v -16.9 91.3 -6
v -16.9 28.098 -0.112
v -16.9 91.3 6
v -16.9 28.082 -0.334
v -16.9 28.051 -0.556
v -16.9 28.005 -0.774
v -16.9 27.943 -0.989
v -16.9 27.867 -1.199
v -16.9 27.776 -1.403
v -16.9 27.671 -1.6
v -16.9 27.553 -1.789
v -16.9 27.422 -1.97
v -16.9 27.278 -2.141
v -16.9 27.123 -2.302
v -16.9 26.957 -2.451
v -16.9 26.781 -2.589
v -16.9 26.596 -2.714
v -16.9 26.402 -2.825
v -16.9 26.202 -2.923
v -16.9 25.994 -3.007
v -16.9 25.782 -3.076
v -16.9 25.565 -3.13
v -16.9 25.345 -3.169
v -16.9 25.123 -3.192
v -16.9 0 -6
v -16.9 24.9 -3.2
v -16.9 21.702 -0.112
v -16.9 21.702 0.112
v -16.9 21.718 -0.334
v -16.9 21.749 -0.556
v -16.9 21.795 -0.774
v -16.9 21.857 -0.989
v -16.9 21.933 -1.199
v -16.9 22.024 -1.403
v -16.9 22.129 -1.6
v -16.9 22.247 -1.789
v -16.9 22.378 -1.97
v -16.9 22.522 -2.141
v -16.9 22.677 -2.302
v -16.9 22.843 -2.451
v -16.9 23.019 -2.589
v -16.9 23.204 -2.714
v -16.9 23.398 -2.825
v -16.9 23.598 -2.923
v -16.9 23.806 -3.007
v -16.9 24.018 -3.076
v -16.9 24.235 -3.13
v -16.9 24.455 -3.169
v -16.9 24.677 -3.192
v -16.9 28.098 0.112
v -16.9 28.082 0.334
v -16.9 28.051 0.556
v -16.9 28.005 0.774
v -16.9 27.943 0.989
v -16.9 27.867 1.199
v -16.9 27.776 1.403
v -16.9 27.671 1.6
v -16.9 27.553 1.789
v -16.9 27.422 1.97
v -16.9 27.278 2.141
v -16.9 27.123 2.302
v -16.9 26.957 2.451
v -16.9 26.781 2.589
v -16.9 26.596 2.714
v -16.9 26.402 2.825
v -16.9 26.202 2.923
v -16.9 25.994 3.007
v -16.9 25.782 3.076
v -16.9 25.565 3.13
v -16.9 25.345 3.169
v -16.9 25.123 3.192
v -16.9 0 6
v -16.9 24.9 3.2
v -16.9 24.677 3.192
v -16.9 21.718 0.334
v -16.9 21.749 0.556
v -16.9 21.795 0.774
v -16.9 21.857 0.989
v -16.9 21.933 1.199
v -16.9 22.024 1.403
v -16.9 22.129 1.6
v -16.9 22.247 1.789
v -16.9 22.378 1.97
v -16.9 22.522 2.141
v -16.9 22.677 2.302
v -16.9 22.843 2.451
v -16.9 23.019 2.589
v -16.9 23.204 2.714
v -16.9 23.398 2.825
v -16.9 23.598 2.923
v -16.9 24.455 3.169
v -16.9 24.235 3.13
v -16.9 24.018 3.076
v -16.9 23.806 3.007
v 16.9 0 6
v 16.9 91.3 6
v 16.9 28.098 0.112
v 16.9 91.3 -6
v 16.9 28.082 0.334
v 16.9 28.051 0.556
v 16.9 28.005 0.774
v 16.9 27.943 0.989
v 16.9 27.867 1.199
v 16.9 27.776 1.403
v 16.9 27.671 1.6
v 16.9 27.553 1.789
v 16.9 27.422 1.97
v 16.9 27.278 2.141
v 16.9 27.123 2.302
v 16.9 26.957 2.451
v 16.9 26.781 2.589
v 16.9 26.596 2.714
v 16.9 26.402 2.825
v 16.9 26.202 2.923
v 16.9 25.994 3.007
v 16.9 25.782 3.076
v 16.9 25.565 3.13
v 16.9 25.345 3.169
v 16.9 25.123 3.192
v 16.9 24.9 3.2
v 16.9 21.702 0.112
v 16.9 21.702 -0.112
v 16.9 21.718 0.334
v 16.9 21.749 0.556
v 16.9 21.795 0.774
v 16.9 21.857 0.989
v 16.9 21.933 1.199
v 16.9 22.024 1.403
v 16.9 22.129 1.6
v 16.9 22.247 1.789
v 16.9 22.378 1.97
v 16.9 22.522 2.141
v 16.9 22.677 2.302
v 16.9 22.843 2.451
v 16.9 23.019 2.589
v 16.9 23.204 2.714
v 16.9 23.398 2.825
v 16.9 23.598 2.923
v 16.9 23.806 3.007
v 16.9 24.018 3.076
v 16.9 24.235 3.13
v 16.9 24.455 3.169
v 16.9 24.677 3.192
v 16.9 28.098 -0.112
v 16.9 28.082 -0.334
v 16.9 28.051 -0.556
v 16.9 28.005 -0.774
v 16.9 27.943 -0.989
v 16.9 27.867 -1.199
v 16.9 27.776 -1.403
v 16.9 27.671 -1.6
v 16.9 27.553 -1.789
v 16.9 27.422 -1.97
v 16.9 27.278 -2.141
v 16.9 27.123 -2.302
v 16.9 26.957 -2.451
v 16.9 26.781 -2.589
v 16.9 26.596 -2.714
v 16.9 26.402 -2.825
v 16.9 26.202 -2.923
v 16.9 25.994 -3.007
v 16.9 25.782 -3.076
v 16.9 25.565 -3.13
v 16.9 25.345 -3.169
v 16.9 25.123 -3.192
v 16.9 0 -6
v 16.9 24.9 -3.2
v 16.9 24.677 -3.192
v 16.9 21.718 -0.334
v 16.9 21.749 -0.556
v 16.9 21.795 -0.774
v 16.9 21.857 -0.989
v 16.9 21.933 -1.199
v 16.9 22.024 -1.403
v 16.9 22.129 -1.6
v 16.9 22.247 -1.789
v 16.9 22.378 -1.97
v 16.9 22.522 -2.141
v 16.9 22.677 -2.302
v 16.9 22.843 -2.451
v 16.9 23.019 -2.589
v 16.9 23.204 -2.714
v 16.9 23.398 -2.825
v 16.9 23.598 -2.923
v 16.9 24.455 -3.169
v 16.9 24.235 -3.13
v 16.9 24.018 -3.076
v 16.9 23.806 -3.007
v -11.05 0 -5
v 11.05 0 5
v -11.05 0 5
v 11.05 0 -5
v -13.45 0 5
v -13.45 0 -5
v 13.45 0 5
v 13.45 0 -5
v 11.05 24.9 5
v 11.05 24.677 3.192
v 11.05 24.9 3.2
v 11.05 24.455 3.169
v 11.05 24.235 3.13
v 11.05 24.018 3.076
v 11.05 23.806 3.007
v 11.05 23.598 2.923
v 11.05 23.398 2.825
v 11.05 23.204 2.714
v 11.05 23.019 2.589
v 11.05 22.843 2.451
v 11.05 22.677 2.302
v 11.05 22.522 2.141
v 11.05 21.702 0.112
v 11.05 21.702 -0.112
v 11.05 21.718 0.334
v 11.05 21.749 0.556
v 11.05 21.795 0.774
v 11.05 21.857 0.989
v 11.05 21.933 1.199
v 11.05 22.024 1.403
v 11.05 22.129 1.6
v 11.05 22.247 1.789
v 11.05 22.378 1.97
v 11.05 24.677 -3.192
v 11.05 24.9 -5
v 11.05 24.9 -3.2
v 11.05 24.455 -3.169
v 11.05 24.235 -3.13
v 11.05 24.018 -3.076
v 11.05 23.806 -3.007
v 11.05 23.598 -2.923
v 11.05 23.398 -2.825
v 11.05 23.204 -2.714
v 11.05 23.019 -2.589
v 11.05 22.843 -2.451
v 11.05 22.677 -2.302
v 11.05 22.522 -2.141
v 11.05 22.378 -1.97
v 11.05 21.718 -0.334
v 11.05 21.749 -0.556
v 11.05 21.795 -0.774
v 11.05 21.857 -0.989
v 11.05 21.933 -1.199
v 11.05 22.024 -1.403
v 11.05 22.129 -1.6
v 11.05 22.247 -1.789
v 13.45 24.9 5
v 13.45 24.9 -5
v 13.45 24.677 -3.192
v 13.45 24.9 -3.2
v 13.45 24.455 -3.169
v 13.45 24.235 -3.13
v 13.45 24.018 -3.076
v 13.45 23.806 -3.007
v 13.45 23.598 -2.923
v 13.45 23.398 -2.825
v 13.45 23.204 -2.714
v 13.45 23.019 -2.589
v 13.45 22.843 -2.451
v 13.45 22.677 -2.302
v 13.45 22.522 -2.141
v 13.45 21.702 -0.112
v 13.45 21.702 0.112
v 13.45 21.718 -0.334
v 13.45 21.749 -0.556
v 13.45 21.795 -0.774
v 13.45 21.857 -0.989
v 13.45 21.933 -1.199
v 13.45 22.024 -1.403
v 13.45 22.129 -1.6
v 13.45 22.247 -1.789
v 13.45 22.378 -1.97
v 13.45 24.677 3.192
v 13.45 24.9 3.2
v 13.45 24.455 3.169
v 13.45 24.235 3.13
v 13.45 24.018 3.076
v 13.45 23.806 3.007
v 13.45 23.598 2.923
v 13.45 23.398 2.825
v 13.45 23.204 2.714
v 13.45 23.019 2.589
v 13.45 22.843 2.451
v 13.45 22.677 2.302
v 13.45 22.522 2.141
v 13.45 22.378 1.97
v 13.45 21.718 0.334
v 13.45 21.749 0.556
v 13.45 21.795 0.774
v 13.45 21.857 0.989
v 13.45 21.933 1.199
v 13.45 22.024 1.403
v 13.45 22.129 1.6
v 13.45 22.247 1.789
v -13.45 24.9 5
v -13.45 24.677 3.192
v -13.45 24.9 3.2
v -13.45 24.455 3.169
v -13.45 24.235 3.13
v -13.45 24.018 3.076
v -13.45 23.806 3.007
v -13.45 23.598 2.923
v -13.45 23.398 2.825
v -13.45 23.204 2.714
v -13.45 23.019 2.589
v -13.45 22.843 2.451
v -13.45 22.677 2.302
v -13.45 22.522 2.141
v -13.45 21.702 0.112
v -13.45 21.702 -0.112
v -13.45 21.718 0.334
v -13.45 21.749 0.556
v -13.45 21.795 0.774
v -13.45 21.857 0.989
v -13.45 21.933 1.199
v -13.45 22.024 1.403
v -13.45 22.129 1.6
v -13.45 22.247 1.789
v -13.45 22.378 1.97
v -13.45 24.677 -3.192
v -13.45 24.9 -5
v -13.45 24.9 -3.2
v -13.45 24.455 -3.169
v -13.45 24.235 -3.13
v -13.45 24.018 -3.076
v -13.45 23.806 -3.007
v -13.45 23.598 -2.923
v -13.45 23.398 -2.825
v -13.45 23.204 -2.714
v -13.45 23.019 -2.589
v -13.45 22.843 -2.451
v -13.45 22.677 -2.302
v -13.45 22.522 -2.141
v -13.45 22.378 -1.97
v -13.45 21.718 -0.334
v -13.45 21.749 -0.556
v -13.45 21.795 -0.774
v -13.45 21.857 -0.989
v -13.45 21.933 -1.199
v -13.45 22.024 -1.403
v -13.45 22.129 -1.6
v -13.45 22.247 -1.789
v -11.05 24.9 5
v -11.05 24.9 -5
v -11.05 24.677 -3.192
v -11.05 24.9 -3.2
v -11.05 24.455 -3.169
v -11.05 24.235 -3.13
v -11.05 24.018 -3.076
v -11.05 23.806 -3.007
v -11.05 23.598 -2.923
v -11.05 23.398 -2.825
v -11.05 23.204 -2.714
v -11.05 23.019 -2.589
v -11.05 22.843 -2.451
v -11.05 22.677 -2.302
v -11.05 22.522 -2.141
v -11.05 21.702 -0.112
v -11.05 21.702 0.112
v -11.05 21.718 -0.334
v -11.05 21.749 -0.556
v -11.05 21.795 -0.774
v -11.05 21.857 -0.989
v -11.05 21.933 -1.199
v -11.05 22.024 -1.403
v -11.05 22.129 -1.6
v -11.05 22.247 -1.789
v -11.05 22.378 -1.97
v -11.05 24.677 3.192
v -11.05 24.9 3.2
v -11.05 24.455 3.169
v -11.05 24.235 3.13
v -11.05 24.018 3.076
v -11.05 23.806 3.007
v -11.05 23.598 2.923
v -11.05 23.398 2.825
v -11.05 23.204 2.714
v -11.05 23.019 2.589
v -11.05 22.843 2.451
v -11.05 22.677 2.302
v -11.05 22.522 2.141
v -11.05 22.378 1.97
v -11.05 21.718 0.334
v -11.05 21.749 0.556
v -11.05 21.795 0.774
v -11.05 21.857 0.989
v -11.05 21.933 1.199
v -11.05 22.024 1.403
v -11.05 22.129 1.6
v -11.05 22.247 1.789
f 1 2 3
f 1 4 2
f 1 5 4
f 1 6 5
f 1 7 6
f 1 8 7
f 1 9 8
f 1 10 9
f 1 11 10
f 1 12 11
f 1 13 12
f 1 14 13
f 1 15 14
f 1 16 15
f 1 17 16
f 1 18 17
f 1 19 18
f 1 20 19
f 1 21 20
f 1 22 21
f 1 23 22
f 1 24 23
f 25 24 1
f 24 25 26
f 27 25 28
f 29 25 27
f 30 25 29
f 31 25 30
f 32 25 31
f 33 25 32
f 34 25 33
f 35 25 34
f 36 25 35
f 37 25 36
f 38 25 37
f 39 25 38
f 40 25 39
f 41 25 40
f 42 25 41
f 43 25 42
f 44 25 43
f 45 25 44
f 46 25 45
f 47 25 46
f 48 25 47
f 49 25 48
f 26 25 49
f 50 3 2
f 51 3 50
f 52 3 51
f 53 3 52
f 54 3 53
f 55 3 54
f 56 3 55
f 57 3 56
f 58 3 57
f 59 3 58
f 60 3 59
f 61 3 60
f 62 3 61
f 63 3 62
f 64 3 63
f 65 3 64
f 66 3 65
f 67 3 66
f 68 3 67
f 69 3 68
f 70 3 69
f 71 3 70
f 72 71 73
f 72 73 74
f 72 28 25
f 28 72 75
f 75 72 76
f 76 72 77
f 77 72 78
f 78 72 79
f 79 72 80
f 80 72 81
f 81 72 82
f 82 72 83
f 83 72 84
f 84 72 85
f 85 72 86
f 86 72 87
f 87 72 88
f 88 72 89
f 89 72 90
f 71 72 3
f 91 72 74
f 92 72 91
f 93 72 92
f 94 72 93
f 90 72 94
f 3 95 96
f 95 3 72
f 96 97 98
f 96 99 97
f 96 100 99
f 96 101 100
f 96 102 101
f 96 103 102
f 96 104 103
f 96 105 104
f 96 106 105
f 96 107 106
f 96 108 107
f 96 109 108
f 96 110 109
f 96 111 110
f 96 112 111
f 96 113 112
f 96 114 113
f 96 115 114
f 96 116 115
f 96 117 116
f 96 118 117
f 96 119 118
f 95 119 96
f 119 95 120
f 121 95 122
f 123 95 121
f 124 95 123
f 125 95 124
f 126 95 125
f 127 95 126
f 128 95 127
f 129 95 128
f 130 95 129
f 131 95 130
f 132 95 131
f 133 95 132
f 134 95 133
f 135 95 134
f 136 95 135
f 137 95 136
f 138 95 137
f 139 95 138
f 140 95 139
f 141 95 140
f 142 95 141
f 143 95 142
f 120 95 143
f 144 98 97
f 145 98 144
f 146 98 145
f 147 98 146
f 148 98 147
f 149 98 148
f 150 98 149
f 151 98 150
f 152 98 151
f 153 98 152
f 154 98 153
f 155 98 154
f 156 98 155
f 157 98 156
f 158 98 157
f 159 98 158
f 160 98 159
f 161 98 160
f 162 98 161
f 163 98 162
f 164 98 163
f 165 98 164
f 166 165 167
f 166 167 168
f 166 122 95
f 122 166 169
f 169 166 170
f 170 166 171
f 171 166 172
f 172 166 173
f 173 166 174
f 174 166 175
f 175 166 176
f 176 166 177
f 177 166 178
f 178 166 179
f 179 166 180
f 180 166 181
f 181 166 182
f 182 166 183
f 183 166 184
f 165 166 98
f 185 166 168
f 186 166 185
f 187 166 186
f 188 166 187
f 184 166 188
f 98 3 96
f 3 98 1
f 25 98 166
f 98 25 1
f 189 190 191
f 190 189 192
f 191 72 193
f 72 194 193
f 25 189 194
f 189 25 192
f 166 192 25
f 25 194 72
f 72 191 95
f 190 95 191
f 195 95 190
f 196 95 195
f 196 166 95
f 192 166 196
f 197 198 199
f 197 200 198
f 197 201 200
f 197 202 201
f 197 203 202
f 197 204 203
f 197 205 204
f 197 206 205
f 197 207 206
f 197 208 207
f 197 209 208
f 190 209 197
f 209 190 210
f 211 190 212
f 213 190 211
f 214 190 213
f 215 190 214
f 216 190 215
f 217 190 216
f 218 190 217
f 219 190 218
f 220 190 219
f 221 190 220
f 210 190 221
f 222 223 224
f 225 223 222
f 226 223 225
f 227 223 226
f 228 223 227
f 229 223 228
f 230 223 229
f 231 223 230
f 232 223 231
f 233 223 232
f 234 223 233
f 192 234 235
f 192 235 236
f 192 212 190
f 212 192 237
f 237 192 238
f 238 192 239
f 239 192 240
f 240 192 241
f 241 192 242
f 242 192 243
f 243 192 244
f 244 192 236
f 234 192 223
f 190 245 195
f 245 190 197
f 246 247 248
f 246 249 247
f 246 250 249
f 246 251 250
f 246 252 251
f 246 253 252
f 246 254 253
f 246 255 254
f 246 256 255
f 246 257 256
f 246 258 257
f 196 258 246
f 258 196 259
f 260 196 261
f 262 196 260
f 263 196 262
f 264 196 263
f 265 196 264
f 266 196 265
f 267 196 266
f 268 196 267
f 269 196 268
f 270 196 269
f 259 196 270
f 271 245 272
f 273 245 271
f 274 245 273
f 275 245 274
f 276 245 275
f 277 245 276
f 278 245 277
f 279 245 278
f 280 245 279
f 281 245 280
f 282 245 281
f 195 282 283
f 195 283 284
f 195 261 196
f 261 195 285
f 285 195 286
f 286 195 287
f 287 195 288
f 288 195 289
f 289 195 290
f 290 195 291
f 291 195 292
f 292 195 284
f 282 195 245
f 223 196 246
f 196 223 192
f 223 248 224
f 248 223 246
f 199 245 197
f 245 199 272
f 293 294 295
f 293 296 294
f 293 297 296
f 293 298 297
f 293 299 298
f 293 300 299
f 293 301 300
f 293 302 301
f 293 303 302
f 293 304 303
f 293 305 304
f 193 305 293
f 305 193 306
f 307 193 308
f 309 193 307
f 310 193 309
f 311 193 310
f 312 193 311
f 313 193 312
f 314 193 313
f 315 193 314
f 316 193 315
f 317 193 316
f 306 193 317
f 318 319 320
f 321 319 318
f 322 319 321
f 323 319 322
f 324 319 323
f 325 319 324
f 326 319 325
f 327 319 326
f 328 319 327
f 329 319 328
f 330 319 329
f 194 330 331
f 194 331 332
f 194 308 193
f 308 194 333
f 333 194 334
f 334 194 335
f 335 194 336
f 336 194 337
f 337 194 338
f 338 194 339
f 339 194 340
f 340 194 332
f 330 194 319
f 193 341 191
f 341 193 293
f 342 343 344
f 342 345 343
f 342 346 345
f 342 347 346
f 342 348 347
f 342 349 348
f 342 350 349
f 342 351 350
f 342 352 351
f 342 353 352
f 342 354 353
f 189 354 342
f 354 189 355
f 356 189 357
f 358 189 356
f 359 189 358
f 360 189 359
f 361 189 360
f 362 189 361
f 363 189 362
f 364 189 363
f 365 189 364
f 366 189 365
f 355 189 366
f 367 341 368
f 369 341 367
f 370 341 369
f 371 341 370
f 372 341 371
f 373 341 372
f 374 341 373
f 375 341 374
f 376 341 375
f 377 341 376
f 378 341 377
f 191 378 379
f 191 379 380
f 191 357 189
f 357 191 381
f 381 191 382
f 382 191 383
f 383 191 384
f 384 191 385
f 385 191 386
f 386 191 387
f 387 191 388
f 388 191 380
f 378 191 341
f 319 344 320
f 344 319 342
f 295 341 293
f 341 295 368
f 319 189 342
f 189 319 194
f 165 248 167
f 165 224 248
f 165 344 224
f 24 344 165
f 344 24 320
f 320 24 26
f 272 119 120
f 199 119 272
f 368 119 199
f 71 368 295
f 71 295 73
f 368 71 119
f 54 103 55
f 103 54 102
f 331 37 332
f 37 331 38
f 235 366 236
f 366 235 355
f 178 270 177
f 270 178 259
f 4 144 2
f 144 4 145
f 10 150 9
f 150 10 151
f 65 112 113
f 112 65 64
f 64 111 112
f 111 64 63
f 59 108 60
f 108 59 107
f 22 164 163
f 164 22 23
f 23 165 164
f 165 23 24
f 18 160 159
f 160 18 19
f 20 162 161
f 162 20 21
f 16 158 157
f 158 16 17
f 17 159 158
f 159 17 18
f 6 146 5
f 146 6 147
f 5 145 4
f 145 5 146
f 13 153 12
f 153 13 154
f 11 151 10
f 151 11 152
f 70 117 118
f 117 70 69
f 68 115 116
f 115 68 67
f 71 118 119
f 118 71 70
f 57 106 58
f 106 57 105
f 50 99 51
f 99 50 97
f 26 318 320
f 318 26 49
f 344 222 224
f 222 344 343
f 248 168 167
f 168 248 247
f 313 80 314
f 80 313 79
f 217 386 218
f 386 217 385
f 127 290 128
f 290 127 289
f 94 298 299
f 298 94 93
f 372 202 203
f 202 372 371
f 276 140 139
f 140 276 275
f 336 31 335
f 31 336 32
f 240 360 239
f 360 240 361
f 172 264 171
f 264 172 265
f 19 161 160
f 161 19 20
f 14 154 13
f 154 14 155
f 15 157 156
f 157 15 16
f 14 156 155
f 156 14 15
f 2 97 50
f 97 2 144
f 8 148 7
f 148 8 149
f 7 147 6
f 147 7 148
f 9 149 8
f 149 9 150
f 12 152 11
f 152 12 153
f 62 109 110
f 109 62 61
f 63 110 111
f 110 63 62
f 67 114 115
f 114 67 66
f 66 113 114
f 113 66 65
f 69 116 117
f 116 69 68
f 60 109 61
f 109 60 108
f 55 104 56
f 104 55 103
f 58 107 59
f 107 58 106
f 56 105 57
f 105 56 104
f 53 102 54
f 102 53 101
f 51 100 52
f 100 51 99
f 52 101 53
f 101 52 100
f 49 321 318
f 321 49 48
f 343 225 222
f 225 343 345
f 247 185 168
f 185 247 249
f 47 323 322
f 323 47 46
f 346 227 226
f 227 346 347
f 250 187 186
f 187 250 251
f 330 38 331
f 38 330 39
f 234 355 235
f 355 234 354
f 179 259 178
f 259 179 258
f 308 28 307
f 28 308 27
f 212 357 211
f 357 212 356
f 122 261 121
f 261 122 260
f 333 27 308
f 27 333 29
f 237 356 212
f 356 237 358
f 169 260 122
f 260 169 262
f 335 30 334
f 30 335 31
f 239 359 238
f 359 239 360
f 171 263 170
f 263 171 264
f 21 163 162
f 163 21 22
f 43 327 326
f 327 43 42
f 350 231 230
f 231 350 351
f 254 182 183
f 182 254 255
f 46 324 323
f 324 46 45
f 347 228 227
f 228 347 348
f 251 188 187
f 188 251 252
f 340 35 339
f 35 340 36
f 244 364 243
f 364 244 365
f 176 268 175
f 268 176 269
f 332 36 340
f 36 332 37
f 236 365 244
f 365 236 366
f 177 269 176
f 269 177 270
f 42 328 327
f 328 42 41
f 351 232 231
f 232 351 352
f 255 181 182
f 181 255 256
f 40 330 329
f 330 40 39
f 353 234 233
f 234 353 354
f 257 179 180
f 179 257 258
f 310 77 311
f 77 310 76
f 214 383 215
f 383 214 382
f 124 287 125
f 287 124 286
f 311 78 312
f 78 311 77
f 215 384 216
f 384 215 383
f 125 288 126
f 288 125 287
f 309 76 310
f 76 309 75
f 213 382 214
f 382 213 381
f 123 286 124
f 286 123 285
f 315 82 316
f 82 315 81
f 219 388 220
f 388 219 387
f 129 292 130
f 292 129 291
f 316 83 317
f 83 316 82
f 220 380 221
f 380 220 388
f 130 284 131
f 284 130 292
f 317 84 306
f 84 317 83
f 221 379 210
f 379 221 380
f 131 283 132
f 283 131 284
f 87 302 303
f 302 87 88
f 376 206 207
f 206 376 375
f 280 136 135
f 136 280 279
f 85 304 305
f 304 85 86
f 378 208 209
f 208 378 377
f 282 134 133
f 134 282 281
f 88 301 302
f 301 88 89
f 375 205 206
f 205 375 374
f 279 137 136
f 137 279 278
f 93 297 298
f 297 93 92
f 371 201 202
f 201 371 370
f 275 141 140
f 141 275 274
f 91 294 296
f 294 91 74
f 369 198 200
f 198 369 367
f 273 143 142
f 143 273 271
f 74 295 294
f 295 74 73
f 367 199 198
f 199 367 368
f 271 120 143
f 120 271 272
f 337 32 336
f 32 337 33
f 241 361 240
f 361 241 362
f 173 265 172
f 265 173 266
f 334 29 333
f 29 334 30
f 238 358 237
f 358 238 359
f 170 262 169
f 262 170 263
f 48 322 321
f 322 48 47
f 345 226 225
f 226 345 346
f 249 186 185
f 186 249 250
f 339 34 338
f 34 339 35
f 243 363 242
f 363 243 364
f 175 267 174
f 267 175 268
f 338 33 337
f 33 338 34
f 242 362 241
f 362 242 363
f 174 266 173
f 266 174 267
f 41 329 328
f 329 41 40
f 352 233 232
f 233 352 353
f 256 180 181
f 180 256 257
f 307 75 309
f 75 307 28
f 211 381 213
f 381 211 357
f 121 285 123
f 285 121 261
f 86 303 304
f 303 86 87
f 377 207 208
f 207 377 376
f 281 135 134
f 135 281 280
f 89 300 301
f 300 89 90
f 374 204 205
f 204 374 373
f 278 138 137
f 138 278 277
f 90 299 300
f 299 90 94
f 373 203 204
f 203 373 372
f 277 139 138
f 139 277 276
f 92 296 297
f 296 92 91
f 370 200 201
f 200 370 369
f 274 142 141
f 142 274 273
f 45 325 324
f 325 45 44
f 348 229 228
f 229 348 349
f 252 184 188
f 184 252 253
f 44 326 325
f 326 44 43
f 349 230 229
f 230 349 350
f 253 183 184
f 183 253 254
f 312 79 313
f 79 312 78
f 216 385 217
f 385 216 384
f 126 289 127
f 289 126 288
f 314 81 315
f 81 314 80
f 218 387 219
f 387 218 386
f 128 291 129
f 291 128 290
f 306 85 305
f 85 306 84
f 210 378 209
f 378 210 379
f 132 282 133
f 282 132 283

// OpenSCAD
$fa = 4.0;
$fs = 0.2;
trace = 0;

height = 12;
width = 33.8;

slit_width = 2.4;
slit_height = 10;
slit_separation = 24.5;

end_stem_edge_length = 24.9;
stem_diameter = 6.4;

handle_length = 60;

total_length = end_stem_edge_length + stem_diameter + handle_length;

difference() {
    translate(v = [0, total_length/2, 0]) 
    cube([width, total_length, height], center = true);

    translate(v = [slit_separation/2, end_stem_edge_length/2 - trace, 0])
    cube([slit_width, end_stem_edge_length, slit_height], center = true);

    translate(v = [-slit_separation/2, end_stem_edge_length/2 - trace, 0])
    cube([slit_width, end_stem_edge_length, slit_height], center = true);

    translate(v = [0, end_stem_edge_length, 0]) 
    rotate(a = 90, v = [0, 1, 0]) 
    cylinder(h = 2*width, d=stem_diameter, center = true);
}
